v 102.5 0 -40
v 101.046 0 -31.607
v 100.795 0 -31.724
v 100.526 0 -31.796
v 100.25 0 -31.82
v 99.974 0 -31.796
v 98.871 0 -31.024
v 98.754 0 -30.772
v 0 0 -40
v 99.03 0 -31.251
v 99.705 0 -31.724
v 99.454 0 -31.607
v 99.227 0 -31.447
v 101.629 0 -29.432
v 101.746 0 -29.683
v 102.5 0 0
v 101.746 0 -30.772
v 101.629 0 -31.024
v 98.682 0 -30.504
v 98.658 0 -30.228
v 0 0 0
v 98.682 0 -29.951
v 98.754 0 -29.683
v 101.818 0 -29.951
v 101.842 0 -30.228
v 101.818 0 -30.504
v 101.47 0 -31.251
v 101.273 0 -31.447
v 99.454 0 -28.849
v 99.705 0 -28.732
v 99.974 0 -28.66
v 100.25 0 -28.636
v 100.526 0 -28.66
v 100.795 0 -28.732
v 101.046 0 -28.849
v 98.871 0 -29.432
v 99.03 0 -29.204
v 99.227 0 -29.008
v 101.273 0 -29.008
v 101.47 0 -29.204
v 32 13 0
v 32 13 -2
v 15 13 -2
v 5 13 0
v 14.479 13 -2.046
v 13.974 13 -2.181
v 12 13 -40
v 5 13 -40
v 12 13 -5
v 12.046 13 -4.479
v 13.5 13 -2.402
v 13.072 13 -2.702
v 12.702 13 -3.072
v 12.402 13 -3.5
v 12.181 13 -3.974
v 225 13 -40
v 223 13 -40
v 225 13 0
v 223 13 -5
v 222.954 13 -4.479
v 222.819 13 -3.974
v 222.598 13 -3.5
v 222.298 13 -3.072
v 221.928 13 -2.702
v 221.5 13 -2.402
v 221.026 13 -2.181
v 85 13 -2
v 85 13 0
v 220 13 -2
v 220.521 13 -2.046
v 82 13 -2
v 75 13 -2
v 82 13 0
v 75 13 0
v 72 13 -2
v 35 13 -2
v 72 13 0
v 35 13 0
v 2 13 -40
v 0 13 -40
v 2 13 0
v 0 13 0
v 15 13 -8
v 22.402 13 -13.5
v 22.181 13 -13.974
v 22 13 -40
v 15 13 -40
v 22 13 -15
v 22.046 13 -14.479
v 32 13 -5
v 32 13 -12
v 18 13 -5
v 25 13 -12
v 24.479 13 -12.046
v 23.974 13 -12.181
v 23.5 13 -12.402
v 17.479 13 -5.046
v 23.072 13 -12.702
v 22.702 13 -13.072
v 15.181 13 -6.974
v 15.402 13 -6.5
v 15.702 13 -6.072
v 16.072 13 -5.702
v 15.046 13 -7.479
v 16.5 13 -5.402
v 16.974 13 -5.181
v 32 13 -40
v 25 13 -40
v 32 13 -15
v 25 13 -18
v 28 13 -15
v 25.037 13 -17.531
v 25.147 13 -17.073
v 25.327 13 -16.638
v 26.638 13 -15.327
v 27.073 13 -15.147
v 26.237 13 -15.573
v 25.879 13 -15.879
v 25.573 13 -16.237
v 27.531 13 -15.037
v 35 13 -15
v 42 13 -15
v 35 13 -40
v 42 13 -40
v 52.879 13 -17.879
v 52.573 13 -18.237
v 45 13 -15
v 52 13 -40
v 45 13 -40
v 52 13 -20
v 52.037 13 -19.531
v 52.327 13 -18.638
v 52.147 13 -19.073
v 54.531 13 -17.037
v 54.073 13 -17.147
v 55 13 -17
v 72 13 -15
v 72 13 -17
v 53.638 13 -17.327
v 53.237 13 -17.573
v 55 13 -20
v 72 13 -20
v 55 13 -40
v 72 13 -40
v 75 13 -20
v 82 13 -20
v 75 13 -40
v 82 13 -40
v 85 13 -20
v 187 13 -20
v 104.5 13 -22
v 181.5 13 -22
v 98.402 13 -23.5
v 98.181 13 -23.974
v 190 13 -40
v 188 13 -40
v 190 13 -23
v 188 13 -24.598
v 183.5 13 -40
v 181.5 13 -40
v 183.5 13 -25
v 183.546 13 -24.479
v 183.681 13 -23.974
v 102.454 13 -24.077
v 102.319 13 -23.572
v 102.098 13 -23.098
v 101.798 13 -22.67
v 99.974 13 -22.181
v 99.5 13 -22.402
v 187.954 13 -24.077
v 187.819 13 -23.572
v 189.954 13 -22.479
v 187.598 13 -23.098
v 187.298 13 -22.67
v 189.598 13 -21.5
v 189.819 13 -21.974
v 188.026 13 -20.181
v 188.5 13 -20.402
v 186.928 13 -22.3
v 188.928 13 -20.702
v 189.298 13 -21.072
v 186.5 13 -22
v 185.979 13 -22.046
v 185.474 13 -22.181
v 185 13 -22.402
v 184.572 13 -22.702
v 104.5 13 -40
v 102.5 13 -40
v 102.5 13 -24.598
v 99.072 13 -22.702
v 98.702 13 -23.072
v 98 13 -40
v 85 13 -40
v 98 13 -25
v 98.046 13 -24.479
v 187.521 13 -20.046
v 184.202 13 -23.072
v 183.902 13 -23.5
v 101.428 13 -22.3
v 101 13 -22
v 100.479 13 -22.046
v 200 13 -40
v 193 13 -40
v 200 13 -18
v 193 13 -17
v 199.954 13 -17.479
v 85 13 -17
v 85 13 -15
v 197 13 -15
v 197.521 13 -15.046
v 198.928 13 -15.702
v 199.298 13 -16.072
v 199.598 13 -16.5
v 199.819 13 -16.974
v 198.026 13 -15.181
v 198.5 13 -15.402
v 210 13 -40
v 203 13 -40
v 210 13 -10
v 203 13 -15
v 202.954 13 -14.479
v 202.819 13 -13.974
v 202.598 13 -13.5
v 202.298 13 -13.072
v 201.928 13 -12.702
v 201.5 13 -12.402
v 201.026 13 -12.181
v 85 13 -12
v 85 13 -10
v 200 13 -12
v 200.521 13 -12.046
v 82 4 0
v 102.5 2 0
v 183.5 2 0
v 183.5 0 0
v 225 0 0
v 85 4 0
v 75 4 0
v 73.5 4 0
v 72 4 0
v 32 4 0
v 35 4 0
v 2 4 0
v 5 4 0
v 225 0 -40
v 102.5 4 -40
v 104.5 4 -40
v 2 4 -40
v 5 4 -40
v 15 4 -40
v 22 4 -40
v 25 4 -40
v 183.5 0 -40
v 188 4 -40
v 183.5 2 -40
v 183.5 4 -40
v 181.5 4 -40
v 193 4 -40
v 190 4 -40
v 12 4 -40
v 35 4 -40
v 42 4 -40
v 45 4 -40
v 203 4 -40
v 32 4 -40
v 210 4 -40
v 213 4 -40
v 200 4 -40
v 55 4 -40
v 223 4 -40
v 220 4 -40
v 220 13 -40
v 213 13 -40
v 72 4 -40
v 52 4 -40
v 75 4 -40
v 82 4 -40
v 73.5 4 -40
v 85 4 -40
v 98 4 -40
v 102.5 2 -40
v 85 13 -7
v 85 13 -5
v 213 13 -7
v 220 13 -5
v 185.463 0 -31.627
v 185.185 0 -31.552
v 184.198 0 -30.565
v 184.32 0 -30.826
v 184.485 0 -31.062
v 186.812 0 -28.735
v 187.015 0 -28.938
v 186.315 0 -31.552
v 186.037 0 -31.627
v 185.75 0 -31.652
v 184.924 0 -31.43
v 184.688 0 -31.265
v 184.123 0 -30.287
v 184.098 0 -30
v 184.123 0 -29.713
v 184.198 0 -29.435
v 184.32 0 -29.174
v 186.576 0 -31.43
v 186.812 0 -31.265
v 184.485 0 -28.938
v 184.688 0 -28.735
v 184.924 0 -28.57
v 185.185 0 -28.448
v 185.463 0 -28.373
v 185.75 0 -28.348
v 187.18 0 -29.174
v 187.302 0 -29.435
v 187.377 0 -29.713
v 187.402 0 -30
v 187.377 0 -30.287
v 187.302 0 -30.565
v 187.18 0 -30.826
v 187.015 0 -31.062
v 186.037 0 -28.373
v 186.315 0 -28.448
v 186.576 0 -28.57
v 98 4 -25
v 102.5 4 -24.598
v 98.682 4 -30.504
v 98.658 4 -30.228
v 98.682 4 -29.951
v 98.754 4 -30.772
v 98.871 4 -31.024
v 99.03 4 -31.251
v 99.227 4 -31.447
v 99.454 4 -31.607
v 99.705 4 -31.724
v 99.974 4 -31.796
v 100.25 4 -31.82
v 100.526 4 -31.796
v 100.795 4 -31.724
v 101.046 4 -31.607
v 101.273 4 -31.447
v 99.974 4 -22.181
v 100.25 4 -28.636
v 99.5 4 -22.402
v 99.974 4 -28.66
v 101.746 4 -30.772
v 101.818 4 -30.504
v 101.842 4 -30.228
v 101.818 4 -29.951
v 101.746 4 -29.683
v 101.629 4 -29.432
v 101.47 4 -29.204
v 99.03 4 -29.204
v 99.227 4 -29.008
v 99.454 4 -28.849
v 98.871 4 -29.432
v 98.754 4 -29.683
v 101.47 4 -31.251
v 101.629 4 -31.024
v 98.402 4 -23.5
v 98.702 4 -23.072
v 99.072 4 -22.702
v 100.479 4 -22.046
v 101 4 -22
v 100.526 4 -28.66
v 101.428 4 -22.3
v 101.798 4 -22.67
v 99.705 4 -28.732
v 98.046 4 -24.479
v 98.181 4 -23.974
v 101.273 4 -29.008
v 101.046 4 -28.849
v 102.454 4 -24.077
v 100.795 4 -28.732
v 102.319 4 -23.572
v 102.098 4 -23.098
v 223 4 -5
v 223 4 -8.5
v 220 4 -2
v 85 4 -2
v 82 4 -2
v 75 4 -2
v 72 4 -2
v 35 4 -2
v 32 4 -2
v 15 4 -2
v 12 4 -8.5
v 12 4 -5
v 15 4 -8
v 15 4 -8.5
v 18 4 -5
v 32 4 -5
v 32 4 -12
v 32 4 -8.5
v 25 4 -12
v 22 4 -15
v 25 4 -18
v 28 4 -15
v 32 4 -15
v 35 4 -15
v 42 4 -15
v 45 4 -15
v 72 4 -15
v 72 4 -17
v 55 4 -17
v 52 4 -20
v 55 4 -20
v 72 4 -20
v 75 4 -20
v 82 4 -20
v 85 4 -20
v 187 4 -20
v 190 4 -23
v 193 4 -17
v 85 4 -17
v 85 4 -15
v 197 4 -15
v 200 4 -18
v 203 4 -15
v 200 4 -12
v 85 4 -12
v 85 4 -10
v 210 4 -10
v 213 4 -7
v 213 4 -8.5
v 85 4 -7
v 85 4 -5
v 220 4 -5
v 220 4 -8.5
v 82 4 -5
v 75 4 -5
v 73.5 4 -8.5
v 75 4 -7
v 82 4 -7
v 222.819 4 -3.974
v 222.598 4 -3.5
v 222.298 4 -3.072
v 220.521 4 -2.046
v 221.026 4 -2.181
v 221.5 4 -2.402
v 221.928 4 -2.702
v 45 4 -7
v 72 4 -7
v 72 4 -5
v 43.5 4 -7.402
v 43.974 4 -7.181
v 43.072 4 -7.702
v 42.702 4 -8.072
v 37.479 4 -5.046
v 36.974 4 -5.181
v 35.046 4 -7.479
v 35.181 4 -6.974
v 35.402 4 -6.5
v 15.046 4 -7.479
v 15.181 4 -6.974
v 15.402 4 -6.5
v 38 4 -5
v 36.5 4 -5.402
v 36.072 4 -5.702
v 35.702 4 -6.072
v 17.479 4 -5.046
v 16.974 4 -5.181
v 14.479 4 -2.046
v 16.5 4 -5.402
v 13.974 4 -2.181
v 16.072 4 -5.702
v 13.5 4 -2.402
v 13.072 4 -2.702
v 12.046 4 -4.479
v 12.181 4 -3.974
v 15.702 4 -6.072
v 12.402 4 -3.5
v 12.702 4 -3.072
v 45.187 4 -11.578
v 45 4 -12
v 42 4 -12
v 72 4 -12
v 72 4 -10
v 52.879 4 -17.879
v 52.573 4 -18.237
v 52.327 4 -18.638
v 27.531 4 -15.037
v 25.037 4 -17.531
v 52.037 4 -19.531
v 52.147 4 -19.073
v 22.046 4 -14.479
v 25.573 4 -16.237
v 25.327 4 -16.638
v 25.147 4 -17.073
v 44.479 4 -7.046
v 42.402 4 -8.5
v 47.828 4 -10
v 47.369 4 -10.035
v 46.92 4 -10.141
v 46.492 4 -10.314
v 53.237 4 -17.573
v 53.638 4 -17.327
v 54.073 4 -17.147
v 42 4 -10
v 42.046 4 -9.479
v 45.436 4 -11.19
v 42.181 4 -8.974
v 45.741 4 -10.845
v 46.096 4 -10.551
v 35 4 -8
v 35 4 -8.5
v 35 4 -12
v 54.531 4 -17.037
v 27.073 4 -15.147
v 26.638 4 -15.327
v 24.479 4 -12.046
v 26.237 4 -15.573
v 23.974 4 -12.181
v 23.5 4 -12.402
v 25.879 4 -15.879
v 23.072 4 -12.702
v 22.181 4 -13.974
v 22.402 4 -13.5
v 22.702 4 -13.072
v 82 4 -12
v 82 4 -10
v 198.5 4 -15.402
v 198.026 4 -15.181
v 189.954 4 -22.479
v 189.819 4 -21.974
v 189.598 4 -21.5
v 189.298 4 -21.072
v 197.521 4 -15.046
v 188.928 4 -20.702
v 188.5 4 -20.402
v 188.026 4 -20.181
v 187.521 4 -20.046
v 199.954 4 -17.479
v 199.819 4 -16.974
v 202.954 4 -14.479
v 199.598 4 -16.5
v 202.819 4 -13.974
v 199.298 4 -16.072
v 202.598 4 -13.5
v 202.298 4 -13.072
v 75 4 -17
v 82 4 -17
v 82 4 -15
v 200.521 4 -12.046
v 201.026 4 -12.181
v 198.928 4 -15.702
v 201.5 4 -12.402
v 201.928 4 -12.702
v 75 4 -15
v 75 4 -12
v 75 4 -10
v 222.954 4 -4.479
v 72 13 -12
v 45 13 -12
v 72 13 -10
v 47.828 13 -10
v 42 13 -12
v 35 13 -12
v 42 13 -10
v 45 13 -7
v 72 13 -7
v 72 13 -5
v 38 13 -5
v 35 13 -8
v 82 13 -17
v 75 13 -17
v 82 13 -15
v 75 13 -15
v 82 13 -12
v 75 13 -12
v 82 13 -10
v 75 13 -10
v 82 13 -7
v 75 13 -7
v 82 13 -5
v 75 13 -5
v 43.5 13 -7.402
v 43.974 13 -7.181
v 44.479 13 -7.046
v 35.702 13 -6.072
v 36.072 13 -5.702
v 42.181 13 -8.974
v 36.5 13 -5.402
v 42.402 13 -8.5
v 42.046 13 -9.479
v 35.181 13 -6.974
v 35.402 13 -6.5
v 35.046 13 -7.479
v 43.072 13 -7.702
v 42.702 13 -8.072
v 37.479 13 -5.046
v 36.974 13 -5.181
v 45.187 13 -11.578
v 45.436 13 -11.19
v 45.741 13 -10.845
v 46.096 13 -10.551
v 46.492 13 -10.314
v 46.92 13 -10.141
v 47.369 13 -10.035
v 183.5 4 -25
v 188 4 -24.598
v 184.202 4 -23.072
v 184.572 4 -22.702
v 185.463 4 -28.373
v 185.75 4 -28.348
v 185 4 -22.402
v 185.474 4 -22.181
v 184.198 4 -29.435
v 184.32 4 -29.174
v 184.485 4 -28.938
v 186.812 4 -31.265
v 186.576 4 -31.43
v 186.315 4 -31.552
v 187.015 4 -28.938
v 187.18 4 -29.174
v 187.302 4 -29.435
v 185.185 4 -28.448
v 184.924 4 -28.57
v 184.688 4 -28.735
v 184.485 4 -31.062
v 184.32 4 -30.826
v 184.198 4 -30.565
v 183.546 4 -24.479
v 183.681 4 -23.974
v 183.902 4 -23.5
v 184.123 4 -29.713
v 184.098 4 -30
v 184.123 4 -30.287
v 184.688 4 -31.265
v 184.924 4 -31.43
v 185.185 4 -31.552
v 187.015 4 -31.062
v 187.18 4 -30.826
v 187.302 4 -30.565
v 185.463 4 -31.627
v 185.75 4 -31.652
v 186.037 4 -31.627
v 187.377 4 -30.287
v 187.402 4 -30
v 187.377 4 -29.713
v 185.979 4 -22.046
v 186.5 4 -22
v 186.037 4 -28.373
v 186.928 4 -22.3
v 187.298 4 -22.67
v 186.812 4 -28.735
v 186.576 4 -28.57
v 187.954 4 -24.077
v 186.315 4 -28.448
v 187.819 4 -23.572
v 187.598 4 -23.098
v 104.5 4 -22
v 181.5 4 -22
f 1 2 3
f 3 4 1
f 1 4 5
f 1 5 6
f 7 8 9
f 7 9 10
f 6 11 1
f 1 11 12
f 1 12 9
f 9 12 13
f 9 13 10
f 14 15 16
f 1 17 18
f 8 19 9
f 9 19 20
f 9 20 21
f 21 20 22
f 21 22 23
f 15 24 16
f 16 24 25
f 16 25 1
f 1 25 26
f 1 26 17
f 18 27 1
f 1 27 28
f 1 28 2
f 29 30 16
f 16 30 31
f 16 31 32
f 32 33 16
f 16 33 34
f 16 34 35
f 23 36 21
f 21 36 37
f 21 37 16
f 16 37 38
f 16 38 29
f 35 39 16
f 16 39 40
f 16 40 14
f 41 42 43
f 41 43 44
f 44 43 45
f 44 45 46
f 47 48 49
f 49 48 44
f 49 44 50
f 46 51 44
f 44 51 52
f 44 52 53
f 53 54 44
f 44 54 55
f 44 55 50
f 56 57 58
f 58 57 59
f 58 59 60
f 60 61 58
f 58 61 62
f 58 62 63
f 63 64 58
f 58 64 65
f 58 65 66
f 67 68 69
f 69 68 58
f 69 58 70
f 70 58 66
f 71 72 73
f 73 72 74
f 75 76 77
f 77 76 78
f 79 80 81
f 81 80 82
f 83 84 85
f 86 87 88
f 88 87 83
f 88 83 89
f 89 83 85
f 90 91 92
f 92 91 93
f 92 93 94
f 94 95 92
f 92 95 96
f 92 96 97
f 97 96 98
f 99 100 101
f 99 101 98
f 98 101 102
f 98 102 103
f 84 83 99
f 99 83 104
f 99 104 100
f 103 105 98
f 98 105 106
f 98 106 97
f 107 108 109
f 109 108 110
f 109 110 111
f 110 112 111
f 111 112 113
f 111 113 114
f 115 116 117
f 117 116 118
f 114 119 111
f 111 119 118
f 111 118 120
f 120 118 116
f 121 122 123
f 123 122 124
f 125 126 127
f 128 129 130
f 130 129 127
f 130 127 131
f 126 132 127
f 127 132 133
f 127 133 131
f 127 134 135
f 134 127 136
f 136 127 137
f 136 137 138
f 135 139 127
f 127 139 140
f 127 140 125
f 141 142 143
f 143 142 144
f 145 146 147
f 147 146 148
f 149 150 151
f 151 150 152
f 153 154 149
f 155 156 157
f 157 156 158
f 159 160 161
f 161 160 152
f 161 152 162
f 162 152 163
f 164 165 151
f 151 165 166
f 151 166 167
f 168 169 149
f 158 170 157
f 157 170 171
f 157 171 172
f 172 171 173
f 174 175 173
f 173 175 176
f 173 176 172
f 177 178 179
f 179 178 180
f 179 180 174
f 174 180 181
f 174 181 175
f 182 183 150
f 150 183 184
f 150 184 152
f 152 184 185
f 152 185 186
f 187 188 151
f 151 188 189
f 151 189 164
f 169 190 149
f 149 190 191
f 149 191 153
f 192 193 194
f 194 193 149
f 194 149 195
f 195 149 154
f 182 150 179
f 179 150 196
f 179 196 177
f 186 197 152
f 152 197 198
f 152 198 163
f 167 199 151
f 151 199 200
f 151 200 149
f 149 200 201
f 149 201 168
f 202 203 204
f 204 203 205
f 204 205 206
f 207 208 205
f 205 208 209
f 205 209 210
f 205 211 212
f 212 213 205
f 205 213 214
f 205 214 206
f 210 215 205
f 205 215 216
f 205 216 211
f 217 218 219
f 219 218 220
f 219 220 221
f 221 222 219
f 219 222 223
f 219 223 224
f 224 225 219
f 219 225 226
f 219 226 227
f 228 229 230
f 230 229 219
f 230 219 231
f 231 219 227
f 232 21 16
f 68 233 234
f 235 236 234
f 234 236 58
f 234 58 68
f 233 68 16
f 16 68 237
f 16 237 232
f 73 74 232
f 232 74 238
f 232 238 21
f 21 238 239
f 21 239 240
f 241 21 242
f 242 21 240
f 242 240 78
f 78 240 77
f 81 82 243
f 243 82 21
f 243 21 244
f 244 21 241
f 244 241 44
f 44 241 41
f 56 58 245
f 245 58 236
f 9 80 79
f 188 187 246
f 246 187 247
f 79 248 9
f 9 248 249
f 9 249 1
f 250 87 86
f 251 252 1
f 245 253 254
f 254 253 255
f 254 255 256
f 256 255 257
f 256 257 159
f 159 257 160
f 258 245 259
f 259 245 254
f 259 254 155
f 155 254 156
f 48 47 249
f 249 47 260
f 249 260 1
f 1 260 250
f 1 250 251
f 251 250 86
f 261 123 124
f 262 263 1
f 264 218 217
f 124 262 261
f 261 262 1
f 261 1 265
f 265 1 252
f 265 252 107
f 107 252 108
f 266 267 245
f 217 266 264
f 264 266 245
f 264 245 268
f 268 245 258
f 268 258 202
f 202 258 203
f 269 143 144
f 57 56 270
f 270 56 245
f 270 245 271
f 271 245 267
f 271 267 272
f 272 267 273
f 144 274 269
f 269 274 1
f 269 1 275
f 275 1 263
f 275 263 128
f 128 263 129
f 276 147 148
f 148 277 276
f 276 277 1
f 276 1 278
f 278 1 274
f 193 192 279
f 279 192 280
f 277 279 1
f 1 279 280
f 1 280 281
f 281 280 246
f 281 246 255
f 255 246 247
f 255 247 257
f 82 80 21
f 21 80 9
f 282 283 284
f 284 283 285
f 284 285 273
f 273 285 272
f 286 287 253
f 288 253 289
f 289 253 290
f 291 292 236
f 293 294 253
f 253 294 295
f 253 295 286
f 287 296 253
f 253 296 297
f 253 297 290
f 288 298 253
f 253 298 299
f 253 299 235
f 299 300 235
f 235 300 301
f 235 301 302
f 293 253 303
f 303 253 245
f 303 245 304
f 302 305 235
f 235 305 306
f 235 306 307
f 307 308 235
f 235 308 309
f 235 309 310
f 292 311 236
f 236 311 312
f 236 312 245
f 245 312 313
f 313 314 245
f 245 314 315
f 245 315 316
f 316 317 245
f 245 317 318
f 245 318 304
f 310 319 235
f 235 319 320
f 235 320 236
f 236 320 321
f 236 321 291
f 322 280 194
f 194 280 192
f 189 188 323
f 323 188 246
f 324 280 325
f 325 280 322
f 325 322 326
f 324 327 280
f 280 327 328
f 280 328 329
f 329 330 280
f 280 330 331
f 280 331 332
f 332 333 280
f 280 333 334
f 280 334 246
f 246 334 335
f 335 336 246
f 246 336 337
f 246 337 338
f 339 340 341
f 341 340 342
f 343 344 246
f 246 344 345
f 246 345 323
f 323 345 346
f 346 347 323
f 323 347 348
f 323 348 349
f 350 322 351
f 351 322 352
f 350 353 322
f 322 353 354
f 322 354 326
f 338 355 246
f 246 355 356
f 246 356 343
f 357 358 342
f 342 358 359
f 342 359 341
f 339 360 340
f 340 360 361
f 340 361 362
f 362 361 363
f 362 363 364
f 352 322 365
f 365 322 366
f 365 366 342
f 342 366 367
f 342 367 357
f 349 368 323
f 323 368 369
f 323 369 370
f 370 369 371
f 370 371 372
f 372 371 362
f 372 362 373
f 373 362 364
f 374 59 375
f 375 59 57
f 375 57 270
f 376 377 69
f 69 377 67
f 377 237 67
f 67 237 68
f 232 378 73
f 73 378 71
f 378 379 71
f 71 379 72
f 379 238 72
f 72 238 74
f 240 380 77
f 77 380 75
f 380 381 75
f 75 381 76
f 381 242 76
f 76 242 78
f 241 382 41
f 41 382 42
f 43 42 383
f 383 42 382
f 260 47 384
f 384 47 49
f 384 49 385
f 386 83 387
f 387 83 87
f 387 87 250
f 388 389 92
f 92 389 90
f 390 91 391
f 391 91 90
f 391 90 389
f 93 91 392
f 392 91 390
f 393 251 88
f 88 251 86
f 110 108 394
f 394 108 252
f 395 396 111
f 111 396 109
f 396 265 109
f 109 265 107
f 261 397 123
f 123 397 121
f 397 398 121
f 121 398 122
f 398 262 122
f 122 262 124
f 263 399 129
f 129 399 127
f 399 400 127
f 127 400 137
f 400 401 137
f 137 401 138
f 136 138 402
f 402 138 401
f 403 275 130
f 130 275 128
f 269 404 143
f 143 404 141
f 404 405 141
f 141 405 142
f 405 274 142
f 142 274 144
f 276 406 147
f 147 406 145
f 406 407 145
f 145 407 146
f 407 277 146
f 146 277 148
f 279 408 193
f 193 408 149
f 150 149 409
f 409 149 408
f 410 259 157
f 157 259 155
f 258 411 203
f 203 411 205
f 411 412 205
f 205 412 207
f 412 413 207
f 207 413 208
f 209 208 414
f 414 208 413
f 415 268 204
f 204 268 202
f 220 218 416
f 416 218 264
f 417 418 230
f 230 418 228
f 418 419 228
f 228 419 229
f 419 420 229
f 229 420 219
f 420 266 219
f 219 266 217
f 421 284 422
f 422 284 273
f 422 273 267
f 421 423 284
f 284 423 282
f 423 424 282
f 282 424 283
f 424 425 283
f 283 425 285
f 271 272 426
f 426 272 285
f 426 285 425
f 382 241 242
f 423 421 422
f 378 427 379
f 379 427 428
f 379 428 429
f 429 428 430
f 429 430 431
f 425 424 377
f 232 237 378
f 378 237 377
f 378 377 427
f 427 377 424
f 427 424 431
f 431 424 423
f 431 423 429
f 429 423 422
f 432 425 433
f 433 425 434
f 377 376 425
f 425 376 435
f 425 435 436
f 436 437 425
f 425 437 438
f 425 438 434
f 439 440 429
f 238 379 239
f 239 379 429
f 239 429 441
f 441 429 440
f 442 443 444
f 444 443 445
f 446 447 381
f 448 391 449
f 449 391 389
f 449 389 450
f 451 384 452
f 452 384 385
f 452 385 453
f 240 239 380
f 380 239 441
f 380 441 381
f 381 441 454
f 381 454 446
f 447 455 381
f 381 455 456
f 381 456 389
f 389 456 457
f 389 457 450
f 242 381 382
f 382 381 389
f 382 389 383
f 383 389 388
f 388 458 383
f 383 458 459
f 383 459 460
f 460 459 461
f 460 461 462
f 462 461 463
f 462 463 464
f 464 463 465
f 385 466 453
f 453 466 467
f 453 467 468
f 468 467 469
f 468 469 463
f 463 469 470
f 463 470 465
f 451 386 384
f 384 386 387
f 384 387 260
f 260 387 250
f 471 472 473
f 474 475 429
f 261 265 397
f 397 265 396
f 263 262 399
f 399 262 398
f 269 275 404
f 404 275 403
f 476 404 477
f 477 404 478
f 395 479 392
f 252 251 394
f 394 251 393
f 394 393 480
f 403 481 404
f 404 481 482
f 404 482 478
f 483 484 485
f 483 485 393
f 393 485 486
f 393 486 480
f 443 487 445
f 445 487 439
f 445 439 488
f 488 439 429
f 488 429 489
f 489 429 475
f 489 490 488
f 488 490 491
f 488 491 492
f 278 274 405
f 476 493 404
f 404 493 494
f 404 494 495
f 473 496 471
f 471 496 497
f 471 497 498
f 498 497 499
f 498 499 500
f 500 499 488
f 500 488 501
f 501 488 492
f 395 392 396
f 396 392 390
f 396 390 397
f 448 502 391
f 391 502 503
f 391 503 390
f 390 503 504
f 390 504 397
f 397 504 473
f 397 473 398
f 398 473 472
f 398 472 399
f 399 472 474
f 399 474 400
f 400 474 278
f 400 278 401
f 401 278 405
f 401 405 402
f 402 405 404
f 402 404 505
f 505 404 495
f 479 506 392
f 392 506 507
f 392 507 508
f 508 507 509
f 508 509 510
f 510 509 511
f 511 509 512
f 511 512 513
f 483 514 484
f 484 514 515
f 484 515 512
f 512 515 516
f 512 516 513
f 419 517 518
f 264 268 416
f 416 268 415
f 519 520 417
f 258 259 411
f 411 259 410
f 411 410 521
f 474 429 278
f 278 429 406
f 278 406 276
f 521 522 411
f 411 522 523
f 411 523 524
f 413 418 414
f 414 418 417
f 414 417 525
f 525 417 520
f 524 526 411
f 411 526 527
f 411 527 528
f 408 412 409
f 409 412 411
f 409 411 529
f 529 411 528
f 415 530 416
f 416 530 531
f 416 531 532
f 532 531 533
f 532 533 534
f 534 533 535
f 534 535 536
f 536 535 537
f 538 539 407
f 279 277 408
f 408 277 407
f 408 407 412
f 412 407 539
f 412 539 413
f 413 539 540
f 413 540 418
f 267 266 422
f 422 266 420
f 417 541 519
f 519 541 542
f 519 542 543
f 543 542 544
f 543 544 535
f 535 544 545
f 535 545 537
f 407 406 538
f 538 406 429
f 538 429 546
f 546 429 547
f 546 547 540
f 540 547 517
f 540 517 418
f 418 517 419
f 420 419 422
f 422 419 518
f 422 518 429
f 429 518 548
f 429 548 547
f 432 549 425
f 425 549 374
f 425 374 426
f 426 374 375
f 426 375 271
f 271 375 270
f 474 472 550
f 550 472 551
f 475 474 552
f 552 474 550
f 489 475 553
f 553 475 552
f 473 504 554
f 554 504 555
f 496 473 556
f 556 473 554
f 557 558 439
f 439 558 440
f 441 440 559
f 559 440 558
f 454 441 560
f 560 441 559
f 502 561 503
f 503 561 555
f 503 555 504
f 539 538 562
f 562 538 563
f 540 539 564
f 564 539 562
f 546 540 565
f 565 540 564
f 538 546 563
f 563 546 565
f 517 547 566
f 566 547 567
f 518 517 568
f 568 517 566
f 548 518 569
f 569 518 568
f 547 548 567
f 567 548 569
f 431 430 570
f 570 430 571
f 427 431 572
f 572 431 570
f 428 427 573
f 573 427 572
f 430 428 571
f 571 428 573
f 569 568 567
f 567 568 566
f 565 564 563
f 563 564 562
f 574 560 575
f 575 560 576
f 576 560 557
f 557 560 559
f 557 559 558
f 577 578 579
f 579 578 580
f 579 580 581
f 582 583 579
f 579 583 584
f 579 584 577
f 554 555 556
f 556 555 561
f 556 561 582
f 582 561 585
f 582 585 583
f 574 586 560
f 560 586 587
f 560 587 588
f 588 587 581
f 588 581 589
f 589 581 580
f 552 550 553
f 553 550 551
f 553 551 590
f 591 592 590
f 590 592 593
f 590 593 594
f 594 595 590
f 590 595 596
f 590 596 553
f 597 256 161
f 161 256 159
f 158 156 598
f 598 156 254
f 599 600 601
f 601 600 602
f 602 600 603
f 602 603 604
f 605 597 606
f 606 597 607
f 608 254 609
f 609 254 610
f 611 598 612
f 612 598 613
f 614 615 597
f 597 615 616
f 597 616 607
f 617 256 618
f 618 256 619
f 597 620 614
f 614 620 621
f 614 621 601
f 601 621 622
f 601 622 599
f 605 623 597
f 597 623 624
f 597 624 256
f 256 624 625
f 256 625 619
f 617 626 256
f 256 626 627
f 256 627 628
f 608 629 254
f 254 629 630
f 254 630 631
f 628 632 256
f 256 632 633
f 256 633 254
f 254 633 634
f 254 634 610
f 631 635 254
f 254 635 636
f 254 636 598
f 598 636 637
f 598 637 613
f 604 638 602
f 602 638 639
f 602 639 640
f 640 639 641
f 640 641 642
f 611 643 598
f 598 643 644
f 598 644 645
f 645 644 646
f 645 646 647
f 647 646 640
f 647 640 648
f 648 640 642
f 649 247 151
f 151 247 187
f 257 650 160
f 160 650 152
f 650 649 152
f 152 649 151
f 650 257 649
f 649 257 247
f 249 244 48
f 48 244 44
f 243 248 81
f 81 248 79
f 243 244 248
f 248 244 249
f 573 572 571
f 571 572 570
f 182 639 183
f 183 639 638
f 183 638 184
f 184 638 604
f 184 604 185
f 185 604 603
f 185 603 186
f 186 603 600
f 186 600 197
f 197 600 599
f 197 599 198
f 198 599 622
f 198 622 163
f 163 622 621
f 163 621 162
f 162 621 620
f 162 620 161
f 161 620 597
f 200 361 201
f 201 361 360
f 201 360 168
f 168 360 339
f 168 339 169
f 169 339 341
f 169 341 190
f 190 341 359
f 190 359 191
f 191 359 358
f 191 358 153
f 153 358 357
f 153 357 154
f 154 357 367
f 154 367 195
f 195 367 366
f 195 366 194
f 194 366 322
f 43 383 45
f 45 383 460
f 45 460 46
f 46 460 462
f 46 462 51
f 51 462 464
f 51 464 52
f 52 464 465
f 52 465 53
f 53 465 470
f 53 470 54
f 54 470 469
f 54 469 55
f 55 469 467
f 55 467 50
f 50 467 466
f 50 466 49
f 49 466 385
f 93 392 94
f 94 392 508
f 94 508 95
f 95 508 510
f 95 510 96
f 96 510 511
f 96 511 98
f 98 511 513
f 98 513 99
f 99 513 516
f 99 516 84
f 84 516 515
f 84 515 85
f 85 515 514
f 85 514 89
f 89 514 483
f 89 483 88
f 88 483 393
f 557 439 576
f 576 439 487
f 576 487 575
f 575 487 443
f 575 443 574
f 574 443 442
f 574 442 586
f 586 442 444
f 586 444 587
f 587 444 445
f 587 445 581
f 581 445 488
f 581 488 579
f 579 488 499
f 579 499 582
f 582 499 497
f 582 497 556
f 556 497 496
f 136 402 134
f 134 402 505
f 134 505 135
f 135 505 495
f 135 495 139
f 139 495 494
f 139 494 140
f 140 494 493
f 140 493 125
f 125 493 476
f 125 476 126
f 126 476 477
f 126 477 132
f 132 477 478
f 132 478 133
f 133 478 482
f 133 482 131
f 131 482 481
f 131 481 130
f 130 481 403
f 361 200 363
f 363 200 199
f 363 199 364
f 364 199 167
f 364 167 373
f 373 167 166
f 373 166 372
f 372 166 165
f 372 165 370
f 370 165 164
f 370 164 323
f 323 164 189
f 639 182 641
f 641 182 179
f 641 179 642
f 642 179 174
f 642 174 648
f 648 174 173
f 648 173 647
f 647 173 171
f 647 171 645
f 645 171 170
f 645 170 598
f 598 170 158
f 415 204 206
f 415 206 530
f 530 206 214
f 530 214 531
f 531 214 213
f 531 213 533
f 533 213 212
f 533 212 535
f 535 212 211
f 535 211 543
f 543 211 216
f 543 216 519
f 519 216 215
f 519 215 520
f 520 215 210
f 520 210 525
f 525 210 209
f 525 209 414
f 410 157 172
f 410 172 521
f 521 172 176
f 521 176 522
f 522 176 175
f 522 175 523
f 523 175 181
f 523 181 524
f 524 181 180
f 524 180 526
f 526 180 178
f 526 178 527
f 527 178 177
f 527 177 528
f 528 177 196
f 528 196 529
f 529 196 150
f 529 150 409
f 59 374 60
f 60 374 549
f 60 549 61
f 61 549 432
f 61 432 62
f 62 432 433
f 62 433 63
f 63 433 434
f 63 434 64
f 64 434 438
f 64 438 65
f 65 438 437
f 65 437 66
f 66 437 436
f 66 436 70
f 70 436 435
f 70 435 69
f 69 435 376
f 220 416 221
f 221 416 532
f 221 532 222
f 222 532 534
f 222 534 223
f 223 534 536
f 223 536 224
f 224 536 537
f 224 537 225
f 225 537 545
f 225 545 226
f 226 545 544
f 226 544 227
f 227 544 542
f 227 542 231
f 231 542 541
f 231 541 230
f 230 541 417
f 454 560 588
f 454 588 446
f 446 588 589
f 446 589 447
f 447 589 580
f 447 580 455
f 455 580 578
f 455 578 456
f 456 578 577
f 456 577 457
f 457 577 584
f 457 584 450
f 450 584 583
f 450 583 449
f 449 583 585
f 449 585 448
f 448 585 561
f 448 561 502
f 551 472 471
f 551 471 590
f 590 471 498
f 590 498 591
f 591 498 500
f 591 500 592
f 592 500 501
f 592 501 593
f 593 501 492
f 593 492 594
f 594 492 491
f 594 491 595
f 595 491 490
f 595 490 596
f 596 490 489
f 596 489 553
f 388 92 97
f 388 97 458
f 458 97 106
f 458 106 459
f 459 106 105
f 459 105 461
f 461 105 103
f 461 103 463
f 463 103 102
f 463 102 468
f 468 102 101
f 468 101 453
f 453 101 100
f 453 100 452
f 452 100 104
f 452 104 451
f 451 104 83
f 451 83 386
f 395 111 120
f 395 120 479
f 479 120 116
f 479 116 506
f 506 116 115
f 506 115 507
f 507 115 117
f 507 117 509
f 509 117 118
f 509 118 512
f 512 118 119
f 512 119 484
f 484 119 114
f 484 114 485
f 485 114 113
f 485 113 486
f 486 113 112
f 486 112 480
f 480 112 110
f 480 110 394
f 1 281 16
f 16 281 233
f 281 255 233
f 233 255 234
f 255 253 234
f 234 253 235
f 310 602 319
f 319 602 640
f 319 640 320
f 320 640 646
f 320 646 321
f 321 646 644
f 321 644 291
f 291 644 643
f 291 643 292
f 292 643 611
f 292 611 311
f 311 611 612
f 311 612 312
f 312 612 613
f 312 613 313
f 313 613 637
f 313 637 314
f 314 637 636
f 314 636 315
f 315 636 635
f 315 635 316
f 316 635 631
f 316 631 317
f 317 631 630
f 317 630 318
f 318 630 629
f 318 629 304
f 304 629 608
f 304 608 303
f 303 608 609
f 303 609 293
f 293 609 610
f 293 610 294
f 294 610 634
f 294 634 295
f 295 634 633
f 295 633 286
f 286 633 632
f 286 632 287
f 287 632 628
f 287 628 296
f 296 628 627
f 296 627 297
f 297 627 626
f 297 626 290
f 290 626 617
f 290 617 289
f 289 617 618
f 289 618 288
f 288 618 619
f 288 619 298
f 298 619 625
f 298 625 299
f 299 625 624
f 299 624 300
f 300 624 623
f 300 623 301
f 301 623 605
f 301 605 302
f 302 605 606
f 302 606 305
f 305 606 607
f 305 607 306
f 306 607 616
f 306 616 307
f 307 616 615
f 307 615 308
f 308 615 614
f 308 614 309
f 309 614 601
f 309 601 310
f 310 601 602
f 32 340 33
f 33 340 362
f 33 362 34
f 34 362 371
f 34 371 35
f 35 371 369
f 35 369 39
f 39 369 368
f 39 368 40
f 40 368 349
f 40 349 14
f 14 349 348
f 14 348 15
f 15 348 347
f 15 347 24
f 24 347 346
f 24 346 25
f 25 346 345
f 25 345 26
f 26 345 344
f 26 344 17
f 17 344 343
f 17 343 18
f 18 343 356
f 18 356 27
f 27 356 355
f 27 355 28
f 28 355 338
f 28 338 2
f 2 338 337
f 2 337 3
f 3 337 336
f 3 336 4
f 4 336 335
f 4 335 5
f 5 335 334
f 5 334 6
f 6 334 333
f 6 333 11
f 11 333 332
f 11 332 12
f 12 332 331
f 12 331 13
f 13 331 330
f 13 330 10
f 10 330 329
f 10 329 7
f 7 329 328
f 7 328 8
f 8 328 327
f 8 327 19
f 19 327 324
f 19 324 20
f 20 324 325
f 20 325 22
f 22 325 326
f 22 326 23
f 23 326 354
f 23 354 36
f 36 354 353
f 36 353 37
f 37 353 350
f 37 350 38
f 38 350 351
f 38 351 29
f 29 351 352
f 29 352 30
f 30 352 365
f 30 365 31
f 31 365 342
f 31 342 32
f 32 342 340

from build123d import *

# Parameters (mm, degrees)
PROFILESKETCH1_W              = 225
PROFILESKETCH1_H              = 40
PROFILEBOSS_EXTRUDE1_DEPTH    = 13
CABLE_GUIDESSKETCH2_W         = 27
CABLE_GUIDESSKETCH2_H         = 2
CABLE_GUIDESSKETCH2_W_2       = 7
CABLE_GUIDESSKETCH2_W_3       = 3
CABLE_GUIDESSKETCH2_H_2       = 40
CABLE_GUIDESSKETCH2_W_4       = 4.5
CABLE_GUIDESSKETCH2_H_3       = 18
CABLE_GUIDESSKETCH2_W_5       = 77
CABLEGUIDESCUT_EXTRUDE1_DEPTH = 9
FILLET3_R                     = 3
FILLET5_R                     = 3
FILLET6_R                     = 3
FILLET7_R                     = 3
BRIDGESKETCH2_W               = 81
BRIDGESKETCH2_H               = 2
BRIDGECUT_EXTRUDE3_DEPTH      = 229.897356909
MOUNTHOLESSKETCH4_R           = 1.592048555
MOUNTHOLESSKETCH4_R_2         = 1.651770992
MOUNTHOLESCUT_EXTRUDE4_DEPTH  = 229.705050228


with BuildPart() as part:
    # ProfileSketch1 → ProfileBoss-Extrude1 (new body)
    with BuildSketch(Plane(origin=(0, 0, 0), x_dir=(1, 0, 0), z_dir=(0, 1, 0))):
        with Locations((112.5, 20)):
            Rectangle(PROFILESKETCH1_W, PROFILESKETCH1_H)
    extrude(amount=PROFILEBOSS_EXTRUDE1_DEPTH)

    # Cable GuidesSketch2 → CableGuidesCut-Extrude1 (cut)
    # profile 1 of 5: a face of its own
    with BuildSketch(Plane(origin=(0, 13, 0), x_dir=(1, 0, 0), z_dir=(0, 1, 0))):
        Polygon((223, 2), (85, 2), (85, 0), (82, 0), (82, 2), (75, 2), (75, 0), (72, 0), (72, 2), (35, 2), (35, 0), (32, 0), (32, 2), (12, 2), (12, 40), (15, 40), (15, 5), (32, 5), (32, 12), (22, 12), (22, 40), (25, 40), (25, 15), (32, 15), (32, 40), (35, 40), (35, 15), (42, 15), (42, 40), (45, 40), (45, 15), (72, 15), (72, 17), (52, 17), (52, 40), (55, 40), (55, 20), (72, 20), (72, 40), (75, 40), (75, 20), (82, 20), (82, 40), (85, 40), (85, 20), (190, 20), (190, 40), (193, 40), (193, 17), (85, 17), (85, 15), (200, 15), (200, 40), (203, 40), (203, 12), (85, 12), (85, 10), (210, 10), (210, 40), (213, 40), (213, 7), (85, 7), (85, 5), (220, 5), (220, 40), (223, 40), align=None)
        Polygon((42, 7), (72, 7), (72, 5), (35, 5), (35, 12), (42, 12), align=None, mode=Mode.SUBTRACT)
        with Locations((58.5, 11)):
            Rectangle(CABLE_GUIDESSKETCH2_W, CABLE_GUIDESSKETCH2_H, mode=Mode.SUBTRACT)
        with Locations((78.5, 16)):
            Rectangle(CABLE_GUIDESSKETCH2_W_2, CABLE_GUIDESSKETCH2_H, mode=Mode.SUBTRACT)
        with Locations((78.5, 11)):
            Rectangle(CABLE_GUIDESSKETCH2_W_2, CABLE_GUIDESSKETCH2_H, mode=Mode.SUBTRACT)
        with Locations((78.5, 6)):
            Rectangle(CABLE_GUIDESSKETCH2_W_2, CABLE_GUIDESSKETCH2_H, mode=Mode.SUBTRACT)
    # profile 2 of 5: a face of its own
    with BuildSketch(Plane(origin=(0, 13, 0), x_dir=(1, 0, 0), z_dir=(0, 1, 0))):
        with Locations((3.5, 20)):
            Rectangle(CABLE_GUIDESSKETCH2_W_3, CABLE_GUIDESSKETCH2_H_2)
    # profile 3 of 5: a face of its own
    with BuildSketch(Plane(origin=(0, 13, 0), x_dir=(1, 0, 0), z_dir=(0, 1, 0))):
        with Locations((100.25, 31)):
            Rectangle(CABLE_GUIDESSKETCH2_W_4, CABLE_GUIDESSKETCH2_H_3)
    # profile 4 of 5: a face of its own
    with BuildSketch(Plane(origin=(0, 13, 0), x_dir=(1, 0, 0), z_dir=(0, 1, 0))):
        with Locations((185.75, 31)):
            Rectangle(CABLE_GUIDESSKETCH2_W_4, CABLE_GUIDESSKETCH2_H_3)
    # profile 5 of 5: a face of its own
    with BuildSketch(Plane(origin=(0, 13, 0), x_dir=(1, 0, 0), z_dir=(0, 1, 0))):
        with Locations((143, 31)):
            Rectangle(CABLE_GUIDESSKETCH2_W_5, CABLE_GUIDESSKETCH2_H_3)
    extrude(amount=-CABLEGUIDESCUT_EXTRUDE1_DEPTH, mode=Mode.SUBTRACT)

    # Fillet3
    fillet3_edges = [part.edges().sort_by_distance(p)[0] for p in [
        (183.5, 8.5, -22),
        (12, 8.5, -2),
        (22, 8.5, -12),
        (52, 8.5, -17),
        (42, 8.5, -7),
        (98, 8.5, -22),
    ]]
    fillet(fillet3_edges, radius=FILLET3_R)

    # Fillet5
    # the kernel refuses this fillet: 3 mm, written as the material it adds along each edge
    with BuildSketch(Plane(origin=(188, 13, -22), x_dir=(0, 0, -1), z_dir=(0, -1, 0)), Plane(origin=(102.5, 13, -22), x_dir=(0, 0, -1), z_dir=(0, -1, 0))) as fillet5_piece_1:
        with BuildLine():
            CenterArc((2.598076211, -3), FILLET5_R, 90, 60)
            Line((0, -1.5), (0, 0))
            Line((0, 0), (2.598076211, 0))
        make_face()
    extrude(amount=9)
    # the kernel refuses this fillet: 3 mm, written as the material it takes off along each edge
    with BuildSketch(Plane(origin=(200, 20.5, -15), x_dir=(0, 0, -1), z_dir=(0, -1, 0)), Plane(origin=(190, 20.5, -20), x_dir=(0, 0, -1), z_dir=(0, -1, 0))) as fillet5_2_piece_1:
        with BuildLine():
            CenterArc((FILLET5_R, -FILLET5_R), FILLET5_R, 90, 90)
            Line((0, -FILLET5_R), (0, 0))
            Line((0, 0), (FILLET5_R, 0))
        make_face()
    extrude(amount=16.5, mode=Mode.SUBTRACT)

    # Fillet6
    fillet6_edges = [part.edges().sort_by_distance(p)[0] for p in [
        (223, 8.5, -2),
        (203, 8.5, -12),
    ]]
    fillet(fillet6_edges, radius=FILLET6_R)

    # Fillet7
    # the kernel refuses this fillet: 3 mm, written as the material it takes off along each edge
    with BuildSketch(Plane(origin=(35, 20.5, -5), x_dir=(0, 0, -1), z_dir=(0, -1, 0)), Plane(origin=(15, 20.5, -5), x_dir=(0, 0, -1), z_dir=(0, -1, 0)), Plane(origin=(25, 20.5, -15), x_dir=(0, 0, -1), z_dir=(0, -1, 0))) as fillet7_piece_1:
        with BuildLine():
            CenterArc((FILLET7_R, FILLET7_R), FILLET7_R, 180, 90)
            Line((0, FILLET7_R), (-FILLET7_R * 0.02, FILLET7_R))
            Line((-FILLET7_R * 0.02, FILLET7_R), (-FILLET7_R * 0.02, -FILLET7_R * 0.02))
            Line((-FILLET7_R * 0.02, -FILLET7_R * 0.02), (FILLET7_R, -FILLET7_R * 0.02))
            Line((FILLET7_R, -FILLET7_R * 0.02), (FILLET7_R, 0))
        make_face()
    extrude(amount=16.5, mode=Mode.SUBTRACT)
    with BuildSketch(Plane(origin=(45, 20.071067812, -10), x_dir=(1, 0, 0), z_dir=(0, -1, 0))) as fillet7_piece_2:
        with BuildLine():
            CenterArc((2.828427125, -3), FILLET7_R, 90, 70.528779366)
            Line((0, -2), (-0.056568542, -1.98))
            ThreePointArc((-0.056568542, -1.98), (-0.06, -1), (-0.06, 0))
            Line((-0.06, 0), (0, 0.06))
            Line((0, 0.06), (2.828427125, 0.06))
            Line((2.828427125, 0.06), (2.828427125, 0))
        make_face()
    extrude(amount=16.071067812, mode=Mode.SUBTRACT)

    # BridgeSketch2 → BridgeCut-Extrude3 (cut, through all)
    with BuildSketch(Plane.XY):
        with Locations((143, 1)):
            Rectangle(BRIDGESKETCH2_W, BRIDGESKETCH2_H)
    extrude(amount=-BRIDGECUT_EXTRUDE3_DEPTH, mode=Mode.SUBTRACT)

    # MountHolesSketch4 → MountHolesCut-Extrude4 (cut, through all)
    with BuildSketch(Plane(origin=(0, 4, 0), x_dir=(1, 0, 0), z_dir=(0, 1, 0))):
        with Locations(Location((100.25, 30.227770246, 0), (0, 0, 270))):
            Circle(MOUNTHOLESSKETCH4_R)
        with Locations(Location((185.75, 30, 0), (0, 0, 270))):
            Circle(MOUNTHOLESSKETCH4_R_2)
    extrude(amount=-MOUNTHOLESCUT_EXTRUDE4_DEPTH, mode=Mode.SUBTRACT)


solid = part.part
